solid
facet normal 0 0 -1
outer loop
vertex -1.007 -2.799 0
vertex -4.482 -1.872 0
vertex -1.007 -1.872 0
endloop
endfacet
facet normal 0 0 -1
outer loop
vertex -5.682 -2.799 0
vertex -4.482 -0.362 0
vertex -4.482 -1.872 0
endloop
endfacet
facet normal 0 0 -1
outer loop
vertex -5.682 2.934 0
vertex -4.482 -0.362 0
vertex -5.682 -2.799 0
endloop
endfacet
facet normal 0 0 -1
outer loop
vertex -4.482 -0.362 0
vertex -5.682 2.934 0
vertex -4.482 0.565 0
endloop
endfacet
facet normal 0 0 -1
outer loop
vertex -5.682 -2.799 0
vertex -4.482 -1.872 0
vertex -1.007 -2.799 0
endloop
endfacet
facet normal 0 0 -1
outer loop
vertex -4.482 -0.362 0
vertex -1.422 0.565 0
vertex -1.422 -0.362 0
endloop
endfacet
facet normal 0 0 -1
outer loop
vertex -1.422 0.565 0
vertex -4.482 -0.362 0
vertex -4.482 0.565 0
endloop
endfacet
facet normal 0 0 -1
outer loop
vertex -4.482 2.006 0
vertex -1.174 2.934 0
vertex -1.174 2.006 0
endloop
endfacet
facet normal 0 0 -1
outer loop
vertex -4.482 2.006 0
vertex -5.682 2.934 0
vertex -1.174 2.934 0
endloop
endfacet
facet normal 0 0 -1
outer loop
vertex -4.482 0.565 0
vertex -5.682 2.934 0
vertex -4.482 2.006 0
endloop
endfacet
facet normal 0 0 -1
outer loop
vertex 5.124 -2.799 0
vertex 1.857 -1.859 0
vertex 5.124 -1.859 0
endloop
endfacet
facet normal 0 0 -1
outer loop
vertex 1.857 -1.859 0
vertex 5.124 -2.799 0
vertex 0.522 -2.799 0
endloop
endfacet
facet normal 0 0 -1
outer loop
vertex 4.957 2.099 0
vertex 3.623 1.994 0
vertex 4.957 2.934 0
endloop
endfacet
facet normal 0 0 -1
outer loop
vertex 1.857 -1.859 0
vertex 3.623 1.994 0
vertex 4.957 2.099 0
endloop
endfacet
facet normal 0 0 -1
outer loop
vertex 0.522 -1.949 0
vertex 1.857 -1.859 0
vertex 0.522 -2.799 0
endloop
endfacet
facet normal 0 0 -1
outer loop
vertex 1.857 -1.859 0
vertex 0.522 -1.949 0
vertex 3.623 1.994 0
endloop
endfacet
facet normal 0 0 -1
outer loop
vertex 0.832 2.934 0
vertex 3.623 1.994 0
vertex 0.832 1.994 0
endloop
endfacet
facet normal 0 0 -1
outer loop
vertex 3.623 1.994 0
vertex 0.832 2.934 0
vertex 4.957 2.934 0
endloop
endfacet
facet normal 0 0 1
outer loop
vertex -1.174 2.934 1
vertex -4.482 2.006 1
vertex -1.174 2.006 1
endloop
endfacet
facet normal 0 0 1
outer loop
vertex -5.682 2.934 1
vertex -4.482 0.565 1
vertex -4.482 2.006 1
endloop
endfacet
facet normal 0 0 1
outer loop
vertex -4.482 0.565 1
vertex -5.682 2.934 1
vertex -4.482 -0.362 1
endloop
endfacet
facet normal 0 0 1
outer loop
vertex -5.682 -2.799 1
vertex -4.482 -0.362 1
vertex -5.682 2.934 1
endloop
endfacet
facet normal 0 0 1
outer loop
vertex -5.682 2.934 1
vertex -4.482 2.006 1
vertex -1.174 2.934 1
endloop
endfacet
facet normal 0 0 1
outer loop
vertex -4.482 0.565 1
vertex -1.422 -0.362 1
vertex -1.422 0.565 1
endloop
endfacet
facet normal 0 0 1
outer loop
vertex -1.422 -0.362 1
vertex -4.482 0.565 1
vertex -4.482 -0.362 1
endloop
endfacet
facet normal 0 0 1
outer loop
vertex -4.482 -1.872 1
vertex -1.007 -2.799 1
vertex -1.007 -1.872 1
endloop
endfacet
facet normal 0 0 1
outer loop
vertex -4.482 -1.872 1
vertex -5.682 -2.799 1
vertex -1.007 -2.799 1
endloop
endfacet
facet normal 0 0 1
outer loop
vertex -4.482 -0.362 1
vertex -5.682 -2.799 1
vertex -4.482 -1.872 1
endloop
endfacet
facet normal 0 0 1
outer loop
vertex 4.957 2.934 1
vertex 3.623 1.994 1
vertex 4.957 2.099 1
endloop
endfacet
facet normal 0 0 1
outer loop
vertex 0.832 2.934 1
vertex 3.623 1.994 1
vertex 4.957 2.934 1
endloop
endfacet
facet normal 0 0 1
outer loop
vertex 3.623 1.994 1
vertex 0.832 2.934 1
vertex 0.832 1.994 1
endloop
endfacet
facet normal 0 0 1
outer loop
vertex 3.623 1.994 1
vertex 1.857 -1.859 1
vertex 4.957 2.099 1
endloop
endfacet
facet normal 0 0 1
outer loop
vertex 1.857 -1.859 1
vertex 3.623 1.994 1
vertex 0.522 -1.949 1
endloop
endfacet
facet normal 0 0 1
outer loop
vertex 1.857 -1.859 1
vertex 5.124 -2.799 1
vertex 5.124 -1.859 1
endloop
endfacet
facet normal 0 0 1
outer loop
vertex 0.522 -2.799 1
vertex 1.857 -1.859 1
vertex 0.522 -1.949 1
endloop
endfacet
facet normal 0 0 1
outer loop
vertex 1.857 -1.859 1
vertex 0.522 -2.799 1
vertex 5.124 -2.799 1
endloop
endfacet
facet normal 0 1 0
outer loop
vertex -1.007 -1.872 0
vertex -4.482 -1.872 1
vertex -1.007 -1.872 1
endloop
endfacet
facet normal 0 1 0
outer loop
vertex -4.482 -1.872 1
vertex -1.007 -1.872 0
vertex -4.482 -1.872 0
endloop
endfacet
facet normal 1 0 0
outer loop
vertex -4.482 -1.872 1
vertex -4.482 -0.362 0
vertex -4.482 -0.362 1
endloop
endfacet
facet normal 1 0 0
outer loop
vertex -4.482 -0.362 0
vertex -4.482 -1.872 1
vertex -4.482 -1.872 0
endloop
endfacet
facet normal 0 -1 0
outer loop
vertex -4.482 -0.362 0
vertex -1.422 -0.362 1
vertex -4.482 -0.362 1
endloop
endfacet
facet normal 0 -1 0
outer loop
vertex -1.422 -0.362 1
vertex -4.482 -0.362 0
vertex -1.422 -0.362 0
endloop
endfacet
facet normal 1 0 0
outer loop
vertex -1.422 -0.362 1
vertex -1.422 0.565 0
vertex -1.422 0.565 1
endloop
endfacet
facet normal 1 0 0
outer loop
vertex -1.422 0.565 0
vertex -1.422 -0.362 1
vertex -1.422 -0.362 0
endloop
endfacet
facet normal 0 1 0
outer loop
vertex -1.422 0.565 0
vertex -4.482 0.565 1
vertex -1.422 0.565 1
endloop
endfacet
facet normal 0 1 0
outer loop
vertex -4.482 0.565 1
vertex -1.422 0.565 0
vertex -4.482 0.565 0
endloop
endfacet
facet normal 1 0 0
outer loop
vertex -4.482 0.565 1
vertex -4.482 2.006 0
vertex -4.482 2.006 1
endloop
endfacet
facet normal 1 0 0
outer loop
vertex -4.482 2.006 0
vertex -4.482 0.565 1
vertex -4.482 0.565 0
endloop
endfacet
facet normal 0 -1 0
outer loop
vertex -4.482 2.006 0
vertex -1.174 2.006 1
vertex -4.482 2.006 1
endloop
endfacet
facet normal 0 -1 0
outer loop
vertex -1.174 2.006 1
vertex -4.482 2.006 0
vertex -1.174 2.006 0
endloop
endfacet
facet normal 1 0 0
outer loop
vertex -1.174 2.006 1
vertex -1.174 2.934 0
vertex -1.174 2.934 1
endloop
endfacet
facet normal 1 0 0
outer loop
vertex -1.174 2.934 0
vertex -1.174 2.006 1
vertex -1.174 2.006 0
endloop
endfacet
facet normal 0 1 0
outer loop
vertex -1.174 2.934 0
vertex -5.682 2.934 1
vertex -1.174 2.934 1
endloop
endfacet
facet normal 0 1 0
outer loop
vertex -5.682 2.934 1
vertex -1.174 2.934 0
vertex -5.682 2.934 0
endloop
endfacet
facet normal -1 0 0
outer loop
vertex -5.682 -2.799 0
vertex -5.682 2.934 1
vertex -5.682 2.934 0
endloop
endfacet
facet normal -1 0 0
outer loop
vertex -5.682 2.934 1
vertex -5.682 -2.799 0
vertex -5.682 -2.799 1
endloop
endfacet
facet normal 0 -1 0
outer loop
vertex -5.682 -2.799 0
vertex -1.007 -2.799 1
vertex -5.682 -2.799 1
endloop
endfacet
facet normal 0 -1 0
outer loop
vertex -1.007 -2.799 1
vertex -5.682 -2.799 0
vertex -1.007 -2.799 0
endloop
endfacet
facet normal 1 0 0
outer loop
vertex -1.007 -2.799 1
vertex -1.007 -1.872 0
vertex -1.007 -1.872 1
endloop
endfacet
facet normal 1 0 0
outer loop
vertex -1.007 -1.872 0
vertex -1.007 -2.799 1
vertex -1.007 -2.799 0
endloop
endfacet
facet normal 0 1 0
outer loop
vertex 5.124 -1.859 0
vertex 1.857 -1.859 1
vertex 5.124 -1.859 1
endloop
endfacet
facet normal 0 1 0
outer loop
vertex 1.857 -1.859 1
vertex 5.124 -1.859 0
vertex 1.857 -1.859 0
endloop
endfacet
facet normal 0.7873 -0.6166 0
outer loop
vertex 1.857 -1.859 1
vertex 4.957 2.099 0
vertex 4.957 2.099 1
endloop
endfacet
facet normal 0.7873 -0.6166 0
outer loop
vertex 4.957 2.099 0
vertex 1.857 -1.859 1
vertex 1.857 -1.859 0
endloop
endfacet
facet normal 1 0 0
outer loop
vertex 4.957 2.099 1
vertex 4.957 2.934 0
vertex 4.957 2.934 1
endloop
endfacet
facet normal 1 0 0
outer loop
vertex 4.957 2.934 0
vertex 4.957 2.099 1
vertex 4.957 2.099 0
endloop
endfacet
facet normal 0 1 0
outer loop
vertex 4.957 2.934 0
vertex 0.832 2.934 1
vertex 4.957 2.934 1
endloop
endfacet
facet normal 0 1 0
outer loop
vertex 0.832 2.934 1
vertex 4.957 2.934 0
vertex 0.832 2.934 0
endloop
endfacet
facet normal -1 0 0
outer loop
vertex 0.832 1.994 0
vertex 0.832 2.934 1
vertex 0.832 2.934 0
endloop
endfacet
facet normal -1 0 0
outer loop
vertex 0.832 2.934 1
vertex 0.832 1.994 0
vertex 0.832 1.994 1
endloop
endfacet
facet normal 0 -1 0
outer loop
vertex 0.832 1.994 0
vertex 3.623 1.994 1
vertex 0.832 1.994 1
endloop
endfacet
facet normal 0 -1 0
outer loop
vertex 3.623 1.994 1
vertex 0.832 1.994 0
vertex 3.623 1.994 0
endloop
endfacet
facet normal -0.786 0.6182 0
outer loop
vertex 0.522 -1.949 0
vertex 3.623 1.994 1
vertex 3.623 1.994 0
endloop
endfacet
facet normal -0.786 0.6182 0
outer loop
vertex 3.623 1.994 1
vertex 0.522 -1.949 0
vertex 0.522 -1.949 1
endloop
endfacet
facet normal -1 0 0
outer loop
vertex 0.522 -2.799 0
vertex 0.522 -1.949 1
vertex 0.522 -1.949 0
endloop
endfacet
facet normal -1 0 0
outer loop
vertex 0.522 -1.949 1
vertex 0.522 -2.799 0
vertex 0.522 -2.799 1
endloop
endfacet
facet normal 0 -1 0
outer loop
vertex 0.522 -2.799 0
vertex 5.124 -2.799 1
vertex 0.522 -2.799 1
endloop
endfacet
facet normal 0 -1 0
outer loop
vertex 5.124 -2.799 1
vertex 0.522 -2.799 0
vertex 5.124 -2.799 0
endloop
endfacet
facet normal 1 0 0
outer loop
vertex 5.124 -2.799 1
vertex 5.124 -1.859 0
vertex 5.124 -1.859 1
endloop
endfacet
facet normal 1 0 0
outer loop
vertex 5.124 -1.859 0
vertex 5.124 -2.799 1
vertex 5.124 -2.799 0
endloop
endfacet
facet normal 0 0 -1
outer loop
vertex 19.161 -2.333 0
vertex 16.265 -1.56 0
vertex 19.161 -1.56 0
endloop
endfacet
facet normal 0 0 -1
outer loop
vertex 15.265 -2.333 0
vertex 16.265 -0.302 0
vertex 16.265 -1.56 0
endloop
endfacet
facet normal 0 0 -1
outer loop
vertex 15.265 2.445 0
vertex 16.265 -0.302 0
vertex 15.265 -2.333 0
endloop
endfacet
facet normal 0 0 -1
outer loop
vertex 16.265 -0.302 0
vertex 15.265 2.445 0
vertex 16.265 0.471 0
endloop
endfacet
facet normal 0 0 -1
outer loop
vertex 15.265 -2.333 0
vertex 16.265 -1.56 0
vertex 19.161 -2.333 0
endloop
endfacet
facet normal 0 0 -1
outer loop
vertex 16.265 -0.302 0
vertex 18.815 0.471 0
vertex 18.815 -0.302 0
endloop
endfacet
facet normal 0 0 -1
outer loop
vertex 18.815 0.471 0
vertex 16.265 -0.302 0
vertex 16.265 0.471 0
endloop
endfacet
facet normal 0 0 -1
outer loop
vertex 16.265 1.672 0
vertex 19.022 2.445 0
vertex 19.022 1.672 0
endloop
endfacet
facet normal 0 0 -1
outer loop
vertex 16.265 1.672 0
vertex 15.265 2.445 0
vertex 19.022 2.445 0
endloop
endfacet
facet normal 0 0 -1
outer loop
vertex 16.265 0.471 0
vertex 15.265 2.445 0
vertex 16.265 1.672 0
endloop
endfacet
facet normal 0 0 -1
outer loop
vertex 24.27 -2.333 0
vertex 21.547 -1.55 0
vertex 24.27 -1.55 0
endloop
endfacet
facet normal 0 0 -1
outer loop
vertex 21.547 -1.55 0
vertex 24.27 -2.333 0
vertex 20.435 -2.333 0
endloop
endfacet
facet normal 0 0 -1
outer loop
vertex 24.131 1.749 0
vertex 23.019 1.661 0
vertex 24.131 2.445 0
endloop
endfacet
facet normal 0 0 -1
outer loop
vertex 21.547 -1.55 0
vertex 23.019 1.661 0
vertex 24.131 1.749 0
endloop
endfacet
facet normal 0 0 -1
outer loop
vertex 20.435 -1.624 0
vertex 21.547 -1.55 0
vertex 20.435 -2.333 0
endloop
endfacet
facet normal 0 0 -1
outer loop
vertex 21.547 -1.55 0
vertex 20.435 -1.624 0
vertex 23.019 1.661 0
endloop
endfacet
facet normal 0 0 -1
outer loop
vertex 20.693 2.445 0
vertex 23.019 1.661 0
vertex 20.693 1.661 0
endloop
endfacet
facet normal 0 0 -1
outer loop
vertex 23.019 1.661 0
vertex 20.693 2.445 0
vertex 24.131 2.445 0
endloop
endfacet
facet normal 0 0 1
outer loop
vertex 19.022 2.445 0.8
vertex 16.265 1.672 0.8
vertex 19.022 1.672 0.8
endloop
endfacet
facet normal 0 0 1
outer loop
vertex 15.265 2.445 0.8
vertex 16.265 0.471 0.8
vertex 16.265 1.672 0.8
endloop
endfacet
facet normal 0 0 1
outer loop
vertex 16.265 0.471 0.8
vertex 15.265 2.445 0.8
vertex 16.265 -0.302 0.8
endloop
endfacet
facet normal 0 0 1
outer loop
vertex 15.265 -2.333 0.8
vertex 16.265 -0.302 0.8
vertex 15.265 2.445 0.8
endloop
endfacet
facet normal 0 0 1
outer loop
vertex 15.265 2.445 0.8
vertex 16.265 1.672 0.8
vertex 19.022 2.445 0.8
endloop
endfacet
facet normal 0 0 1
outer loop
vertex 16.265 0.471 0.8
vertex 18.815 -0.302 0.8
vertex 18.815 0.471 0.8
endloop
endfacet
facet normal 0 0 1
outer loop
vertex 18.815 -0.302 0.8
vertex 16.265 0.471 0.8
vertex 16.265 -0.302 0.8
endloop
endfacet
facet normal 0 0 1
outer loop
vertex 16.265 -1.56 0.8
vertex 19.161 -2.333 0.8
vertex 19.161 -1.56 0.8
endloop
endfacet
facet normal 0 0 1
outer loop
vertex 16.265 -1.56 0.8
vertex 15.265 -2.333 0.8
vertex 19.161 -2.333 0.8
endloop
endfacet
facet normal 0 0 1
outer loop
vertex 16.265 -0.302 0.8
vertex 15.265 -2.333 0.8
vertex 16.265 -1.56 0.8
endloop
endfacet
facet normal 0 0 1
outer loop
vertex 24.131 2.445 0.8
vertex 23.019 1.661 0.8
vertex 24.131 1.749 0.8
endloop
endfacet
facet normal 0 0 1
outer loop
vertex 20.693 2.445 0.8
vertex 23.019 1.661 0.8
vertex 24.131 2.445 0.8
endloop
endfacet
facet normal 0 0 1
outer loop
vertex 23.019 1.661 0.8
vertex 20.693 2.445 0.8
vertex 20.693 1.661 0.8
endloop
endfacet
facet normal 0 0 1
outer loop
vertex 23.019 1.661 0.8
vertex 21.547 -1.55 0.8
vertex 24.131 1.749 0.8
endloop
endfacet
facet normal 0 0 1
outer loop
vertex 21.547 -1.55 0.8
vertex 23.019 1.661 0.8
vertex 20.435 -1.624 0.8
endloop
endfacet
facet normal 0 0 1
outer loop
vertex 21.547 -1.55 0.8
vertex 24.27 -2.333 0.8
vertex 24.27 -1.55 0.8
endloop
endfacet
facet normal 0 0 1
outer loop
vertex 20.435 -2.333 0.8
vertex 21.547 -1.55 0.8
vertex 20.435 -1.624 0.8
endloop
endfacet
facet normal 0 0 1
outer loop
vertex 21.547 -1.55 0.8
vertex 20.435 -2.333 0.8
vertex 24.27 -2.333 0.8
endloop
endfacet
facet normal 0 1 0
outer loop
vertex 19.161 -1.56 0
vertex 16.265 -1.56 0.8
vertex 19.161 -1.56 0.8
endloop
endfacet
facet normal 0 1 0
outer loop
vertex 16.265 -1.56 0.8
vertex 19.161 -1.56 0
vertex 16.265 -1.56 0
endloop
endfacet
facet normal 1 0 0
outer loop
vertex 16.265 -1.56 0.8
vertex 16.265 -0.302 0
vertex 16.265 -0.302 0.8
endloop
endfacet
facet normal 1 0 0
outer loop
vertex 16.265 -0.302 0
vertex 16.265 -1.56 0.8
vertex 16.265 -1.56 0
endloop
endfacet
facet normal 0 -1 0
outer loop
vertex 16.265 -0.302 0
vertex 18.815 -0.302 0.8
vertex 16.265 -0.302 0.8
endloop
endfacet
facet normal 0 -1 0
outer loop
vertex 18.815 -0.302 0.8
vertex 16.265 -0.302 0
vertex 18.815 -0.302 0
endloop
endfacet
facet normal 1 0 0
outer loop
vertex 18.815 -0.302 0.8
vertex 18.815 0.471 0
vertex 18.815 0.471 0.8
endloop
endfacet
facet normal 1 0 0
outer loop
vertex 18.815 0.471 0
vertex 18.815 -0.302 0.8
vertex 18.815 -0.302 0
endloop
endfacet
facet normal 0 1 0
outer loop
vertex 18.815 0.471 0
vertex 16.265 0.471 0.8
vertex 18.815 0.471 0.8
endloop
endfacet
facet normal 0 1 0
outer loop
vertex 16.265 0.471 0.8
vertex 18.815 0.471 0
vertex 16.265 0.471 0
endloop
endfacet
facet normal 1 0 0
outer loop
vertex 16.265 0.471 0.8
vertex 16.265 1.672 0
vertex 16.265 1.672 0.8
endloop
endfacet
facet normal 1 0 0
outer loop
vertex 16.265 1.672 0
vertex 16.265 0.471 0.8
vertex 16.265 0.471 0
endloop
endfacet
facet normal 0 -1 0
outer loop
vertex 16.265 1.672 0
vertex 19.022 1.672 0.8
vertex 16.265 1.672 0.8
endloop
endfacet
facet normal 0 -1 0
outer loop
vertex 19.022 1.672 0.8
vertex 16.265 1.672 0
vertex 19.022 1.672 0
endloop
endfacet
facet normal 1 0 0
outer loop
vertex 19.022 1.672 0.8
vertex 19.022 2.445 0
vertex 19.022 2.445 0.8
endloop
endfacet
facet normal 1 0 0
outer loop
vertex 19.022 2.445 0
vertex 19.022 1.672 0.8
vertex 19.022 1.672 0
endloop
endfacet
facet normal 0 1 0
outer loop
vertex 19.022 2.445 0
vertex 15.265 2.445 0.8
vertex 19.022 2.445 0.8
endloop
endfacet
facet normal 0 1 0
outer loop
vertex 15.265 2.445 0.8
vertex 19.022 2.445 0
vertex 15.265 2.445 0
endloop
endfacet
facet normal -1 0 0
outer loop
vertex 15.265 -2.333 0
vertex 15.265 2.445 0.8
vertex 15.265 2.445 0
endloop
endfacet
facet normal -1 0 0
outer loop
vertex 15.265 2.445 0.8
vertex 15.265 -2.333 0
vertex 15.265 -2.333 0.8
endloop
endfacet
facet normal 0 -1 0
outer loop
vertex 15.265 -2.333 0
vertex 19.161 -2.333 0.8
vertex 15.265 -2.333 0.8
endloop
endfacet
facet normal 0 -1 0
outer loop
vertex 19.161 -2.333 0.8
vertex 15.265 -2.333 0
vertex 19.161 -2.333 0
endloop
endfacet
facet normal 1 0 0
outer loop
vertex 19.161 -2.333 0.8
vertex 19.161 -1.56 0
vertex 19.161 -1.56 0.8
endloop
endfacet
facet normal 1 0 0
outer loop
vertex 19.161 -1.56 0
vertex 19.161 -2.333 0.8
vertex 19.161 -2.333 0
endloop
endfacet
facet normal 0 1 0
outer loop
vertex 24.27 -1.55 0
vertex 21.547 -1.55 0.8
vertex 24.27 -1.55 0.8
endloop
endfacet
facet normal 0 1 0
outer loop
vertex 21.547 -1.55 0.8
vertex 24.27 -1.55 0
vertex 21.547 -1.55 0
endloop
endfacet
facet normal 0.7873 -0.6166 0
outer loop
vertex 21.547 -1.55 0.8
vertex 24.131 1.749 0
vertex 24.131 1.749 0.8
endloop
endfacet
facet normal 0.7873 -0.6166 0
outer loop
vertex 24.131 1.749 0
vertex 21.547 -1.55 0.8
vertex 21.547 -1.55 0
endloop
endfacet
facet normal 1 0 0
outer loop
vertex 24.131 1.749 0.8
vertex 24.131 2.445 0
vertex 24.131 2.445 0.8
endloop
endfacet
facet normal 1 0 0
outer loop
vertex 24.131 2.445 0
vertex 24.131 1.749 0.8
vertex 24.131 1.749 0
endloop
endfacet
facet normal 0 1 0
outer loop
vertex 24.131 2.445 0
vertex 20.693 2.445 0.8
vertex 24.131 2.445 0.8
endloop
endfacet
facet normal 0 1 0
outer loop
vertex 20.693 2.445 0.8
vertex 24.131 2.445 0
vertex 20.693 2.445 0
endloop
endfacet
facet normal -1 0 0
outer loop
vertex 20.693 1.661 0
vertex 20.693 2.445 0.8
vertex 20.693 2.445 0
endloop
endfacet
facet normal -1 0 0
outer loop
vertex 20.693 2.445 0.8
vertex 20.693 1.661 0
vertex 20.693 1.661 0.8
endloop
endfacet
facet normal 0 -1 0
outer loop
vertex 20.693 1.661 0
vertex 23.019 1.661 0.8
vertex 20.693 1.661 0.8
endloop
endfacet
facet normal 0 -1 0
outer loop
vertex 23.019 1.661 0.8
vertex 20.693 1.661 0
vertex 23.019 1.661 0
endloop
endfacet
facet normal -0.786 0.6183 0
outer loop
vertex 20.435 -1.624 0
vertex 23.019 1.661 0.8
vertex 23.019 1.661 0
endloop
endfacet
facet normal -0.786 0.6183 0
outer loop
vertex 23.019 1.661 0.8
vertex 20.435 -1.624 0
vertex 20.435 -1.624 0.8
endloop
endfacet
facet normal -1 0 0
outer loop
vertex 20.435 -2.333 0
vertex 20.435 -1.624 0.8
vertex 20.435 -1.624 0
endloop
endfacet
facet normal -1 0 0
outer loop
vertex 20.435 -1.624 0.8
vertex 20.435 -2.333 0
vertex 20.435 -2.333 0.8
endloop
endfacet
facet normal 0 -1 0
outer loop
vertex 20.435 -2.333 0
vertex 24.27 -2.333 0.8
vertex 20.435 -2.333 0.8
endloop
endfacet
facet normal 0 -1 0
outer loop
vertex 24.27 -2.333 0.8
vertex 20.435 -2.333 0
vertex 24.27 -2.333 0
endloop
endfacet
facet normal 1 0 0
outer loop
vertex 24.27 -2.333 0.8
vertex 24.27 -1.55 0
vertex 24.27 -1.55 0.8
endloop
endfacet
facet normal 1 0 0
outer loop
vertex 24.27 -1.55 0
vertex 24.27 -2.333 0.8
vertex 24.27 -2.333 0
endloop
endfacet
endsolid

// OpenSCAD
// file: ../text.scad
module curveText(txt, radius, size, thickness) {
  spacing = size;
  for (i = [0:len(txt) - 1]) {
    char = str(txt[i]);
    angle = i * spacing - (len(txt) - 1) * spacing / 2;
    rotate([0, 0, angle]) {
      translate([radius, 0, 0]) {
        rotate([90, 0, 90]) {
          linear_extrude(thickness) {
            text(char, font="Liberation Sans:style=Bold", size=size, halign="center", valign="center");
          }
        }
      }
    }
  }
}

module logo(size, thickness) {
  linear_extrude(thickness) {
    text("EZ", font="Liberation Sans:style=Bold", size=size, spacing=1.2, halign="center", valign="center");
  }
}
// main file
include <../text.scad>
$fn = 50;

logo(size=6, thickness=1);
translate([20, 0, 0]) {
  logo(size=5, thickness=.8);
}
